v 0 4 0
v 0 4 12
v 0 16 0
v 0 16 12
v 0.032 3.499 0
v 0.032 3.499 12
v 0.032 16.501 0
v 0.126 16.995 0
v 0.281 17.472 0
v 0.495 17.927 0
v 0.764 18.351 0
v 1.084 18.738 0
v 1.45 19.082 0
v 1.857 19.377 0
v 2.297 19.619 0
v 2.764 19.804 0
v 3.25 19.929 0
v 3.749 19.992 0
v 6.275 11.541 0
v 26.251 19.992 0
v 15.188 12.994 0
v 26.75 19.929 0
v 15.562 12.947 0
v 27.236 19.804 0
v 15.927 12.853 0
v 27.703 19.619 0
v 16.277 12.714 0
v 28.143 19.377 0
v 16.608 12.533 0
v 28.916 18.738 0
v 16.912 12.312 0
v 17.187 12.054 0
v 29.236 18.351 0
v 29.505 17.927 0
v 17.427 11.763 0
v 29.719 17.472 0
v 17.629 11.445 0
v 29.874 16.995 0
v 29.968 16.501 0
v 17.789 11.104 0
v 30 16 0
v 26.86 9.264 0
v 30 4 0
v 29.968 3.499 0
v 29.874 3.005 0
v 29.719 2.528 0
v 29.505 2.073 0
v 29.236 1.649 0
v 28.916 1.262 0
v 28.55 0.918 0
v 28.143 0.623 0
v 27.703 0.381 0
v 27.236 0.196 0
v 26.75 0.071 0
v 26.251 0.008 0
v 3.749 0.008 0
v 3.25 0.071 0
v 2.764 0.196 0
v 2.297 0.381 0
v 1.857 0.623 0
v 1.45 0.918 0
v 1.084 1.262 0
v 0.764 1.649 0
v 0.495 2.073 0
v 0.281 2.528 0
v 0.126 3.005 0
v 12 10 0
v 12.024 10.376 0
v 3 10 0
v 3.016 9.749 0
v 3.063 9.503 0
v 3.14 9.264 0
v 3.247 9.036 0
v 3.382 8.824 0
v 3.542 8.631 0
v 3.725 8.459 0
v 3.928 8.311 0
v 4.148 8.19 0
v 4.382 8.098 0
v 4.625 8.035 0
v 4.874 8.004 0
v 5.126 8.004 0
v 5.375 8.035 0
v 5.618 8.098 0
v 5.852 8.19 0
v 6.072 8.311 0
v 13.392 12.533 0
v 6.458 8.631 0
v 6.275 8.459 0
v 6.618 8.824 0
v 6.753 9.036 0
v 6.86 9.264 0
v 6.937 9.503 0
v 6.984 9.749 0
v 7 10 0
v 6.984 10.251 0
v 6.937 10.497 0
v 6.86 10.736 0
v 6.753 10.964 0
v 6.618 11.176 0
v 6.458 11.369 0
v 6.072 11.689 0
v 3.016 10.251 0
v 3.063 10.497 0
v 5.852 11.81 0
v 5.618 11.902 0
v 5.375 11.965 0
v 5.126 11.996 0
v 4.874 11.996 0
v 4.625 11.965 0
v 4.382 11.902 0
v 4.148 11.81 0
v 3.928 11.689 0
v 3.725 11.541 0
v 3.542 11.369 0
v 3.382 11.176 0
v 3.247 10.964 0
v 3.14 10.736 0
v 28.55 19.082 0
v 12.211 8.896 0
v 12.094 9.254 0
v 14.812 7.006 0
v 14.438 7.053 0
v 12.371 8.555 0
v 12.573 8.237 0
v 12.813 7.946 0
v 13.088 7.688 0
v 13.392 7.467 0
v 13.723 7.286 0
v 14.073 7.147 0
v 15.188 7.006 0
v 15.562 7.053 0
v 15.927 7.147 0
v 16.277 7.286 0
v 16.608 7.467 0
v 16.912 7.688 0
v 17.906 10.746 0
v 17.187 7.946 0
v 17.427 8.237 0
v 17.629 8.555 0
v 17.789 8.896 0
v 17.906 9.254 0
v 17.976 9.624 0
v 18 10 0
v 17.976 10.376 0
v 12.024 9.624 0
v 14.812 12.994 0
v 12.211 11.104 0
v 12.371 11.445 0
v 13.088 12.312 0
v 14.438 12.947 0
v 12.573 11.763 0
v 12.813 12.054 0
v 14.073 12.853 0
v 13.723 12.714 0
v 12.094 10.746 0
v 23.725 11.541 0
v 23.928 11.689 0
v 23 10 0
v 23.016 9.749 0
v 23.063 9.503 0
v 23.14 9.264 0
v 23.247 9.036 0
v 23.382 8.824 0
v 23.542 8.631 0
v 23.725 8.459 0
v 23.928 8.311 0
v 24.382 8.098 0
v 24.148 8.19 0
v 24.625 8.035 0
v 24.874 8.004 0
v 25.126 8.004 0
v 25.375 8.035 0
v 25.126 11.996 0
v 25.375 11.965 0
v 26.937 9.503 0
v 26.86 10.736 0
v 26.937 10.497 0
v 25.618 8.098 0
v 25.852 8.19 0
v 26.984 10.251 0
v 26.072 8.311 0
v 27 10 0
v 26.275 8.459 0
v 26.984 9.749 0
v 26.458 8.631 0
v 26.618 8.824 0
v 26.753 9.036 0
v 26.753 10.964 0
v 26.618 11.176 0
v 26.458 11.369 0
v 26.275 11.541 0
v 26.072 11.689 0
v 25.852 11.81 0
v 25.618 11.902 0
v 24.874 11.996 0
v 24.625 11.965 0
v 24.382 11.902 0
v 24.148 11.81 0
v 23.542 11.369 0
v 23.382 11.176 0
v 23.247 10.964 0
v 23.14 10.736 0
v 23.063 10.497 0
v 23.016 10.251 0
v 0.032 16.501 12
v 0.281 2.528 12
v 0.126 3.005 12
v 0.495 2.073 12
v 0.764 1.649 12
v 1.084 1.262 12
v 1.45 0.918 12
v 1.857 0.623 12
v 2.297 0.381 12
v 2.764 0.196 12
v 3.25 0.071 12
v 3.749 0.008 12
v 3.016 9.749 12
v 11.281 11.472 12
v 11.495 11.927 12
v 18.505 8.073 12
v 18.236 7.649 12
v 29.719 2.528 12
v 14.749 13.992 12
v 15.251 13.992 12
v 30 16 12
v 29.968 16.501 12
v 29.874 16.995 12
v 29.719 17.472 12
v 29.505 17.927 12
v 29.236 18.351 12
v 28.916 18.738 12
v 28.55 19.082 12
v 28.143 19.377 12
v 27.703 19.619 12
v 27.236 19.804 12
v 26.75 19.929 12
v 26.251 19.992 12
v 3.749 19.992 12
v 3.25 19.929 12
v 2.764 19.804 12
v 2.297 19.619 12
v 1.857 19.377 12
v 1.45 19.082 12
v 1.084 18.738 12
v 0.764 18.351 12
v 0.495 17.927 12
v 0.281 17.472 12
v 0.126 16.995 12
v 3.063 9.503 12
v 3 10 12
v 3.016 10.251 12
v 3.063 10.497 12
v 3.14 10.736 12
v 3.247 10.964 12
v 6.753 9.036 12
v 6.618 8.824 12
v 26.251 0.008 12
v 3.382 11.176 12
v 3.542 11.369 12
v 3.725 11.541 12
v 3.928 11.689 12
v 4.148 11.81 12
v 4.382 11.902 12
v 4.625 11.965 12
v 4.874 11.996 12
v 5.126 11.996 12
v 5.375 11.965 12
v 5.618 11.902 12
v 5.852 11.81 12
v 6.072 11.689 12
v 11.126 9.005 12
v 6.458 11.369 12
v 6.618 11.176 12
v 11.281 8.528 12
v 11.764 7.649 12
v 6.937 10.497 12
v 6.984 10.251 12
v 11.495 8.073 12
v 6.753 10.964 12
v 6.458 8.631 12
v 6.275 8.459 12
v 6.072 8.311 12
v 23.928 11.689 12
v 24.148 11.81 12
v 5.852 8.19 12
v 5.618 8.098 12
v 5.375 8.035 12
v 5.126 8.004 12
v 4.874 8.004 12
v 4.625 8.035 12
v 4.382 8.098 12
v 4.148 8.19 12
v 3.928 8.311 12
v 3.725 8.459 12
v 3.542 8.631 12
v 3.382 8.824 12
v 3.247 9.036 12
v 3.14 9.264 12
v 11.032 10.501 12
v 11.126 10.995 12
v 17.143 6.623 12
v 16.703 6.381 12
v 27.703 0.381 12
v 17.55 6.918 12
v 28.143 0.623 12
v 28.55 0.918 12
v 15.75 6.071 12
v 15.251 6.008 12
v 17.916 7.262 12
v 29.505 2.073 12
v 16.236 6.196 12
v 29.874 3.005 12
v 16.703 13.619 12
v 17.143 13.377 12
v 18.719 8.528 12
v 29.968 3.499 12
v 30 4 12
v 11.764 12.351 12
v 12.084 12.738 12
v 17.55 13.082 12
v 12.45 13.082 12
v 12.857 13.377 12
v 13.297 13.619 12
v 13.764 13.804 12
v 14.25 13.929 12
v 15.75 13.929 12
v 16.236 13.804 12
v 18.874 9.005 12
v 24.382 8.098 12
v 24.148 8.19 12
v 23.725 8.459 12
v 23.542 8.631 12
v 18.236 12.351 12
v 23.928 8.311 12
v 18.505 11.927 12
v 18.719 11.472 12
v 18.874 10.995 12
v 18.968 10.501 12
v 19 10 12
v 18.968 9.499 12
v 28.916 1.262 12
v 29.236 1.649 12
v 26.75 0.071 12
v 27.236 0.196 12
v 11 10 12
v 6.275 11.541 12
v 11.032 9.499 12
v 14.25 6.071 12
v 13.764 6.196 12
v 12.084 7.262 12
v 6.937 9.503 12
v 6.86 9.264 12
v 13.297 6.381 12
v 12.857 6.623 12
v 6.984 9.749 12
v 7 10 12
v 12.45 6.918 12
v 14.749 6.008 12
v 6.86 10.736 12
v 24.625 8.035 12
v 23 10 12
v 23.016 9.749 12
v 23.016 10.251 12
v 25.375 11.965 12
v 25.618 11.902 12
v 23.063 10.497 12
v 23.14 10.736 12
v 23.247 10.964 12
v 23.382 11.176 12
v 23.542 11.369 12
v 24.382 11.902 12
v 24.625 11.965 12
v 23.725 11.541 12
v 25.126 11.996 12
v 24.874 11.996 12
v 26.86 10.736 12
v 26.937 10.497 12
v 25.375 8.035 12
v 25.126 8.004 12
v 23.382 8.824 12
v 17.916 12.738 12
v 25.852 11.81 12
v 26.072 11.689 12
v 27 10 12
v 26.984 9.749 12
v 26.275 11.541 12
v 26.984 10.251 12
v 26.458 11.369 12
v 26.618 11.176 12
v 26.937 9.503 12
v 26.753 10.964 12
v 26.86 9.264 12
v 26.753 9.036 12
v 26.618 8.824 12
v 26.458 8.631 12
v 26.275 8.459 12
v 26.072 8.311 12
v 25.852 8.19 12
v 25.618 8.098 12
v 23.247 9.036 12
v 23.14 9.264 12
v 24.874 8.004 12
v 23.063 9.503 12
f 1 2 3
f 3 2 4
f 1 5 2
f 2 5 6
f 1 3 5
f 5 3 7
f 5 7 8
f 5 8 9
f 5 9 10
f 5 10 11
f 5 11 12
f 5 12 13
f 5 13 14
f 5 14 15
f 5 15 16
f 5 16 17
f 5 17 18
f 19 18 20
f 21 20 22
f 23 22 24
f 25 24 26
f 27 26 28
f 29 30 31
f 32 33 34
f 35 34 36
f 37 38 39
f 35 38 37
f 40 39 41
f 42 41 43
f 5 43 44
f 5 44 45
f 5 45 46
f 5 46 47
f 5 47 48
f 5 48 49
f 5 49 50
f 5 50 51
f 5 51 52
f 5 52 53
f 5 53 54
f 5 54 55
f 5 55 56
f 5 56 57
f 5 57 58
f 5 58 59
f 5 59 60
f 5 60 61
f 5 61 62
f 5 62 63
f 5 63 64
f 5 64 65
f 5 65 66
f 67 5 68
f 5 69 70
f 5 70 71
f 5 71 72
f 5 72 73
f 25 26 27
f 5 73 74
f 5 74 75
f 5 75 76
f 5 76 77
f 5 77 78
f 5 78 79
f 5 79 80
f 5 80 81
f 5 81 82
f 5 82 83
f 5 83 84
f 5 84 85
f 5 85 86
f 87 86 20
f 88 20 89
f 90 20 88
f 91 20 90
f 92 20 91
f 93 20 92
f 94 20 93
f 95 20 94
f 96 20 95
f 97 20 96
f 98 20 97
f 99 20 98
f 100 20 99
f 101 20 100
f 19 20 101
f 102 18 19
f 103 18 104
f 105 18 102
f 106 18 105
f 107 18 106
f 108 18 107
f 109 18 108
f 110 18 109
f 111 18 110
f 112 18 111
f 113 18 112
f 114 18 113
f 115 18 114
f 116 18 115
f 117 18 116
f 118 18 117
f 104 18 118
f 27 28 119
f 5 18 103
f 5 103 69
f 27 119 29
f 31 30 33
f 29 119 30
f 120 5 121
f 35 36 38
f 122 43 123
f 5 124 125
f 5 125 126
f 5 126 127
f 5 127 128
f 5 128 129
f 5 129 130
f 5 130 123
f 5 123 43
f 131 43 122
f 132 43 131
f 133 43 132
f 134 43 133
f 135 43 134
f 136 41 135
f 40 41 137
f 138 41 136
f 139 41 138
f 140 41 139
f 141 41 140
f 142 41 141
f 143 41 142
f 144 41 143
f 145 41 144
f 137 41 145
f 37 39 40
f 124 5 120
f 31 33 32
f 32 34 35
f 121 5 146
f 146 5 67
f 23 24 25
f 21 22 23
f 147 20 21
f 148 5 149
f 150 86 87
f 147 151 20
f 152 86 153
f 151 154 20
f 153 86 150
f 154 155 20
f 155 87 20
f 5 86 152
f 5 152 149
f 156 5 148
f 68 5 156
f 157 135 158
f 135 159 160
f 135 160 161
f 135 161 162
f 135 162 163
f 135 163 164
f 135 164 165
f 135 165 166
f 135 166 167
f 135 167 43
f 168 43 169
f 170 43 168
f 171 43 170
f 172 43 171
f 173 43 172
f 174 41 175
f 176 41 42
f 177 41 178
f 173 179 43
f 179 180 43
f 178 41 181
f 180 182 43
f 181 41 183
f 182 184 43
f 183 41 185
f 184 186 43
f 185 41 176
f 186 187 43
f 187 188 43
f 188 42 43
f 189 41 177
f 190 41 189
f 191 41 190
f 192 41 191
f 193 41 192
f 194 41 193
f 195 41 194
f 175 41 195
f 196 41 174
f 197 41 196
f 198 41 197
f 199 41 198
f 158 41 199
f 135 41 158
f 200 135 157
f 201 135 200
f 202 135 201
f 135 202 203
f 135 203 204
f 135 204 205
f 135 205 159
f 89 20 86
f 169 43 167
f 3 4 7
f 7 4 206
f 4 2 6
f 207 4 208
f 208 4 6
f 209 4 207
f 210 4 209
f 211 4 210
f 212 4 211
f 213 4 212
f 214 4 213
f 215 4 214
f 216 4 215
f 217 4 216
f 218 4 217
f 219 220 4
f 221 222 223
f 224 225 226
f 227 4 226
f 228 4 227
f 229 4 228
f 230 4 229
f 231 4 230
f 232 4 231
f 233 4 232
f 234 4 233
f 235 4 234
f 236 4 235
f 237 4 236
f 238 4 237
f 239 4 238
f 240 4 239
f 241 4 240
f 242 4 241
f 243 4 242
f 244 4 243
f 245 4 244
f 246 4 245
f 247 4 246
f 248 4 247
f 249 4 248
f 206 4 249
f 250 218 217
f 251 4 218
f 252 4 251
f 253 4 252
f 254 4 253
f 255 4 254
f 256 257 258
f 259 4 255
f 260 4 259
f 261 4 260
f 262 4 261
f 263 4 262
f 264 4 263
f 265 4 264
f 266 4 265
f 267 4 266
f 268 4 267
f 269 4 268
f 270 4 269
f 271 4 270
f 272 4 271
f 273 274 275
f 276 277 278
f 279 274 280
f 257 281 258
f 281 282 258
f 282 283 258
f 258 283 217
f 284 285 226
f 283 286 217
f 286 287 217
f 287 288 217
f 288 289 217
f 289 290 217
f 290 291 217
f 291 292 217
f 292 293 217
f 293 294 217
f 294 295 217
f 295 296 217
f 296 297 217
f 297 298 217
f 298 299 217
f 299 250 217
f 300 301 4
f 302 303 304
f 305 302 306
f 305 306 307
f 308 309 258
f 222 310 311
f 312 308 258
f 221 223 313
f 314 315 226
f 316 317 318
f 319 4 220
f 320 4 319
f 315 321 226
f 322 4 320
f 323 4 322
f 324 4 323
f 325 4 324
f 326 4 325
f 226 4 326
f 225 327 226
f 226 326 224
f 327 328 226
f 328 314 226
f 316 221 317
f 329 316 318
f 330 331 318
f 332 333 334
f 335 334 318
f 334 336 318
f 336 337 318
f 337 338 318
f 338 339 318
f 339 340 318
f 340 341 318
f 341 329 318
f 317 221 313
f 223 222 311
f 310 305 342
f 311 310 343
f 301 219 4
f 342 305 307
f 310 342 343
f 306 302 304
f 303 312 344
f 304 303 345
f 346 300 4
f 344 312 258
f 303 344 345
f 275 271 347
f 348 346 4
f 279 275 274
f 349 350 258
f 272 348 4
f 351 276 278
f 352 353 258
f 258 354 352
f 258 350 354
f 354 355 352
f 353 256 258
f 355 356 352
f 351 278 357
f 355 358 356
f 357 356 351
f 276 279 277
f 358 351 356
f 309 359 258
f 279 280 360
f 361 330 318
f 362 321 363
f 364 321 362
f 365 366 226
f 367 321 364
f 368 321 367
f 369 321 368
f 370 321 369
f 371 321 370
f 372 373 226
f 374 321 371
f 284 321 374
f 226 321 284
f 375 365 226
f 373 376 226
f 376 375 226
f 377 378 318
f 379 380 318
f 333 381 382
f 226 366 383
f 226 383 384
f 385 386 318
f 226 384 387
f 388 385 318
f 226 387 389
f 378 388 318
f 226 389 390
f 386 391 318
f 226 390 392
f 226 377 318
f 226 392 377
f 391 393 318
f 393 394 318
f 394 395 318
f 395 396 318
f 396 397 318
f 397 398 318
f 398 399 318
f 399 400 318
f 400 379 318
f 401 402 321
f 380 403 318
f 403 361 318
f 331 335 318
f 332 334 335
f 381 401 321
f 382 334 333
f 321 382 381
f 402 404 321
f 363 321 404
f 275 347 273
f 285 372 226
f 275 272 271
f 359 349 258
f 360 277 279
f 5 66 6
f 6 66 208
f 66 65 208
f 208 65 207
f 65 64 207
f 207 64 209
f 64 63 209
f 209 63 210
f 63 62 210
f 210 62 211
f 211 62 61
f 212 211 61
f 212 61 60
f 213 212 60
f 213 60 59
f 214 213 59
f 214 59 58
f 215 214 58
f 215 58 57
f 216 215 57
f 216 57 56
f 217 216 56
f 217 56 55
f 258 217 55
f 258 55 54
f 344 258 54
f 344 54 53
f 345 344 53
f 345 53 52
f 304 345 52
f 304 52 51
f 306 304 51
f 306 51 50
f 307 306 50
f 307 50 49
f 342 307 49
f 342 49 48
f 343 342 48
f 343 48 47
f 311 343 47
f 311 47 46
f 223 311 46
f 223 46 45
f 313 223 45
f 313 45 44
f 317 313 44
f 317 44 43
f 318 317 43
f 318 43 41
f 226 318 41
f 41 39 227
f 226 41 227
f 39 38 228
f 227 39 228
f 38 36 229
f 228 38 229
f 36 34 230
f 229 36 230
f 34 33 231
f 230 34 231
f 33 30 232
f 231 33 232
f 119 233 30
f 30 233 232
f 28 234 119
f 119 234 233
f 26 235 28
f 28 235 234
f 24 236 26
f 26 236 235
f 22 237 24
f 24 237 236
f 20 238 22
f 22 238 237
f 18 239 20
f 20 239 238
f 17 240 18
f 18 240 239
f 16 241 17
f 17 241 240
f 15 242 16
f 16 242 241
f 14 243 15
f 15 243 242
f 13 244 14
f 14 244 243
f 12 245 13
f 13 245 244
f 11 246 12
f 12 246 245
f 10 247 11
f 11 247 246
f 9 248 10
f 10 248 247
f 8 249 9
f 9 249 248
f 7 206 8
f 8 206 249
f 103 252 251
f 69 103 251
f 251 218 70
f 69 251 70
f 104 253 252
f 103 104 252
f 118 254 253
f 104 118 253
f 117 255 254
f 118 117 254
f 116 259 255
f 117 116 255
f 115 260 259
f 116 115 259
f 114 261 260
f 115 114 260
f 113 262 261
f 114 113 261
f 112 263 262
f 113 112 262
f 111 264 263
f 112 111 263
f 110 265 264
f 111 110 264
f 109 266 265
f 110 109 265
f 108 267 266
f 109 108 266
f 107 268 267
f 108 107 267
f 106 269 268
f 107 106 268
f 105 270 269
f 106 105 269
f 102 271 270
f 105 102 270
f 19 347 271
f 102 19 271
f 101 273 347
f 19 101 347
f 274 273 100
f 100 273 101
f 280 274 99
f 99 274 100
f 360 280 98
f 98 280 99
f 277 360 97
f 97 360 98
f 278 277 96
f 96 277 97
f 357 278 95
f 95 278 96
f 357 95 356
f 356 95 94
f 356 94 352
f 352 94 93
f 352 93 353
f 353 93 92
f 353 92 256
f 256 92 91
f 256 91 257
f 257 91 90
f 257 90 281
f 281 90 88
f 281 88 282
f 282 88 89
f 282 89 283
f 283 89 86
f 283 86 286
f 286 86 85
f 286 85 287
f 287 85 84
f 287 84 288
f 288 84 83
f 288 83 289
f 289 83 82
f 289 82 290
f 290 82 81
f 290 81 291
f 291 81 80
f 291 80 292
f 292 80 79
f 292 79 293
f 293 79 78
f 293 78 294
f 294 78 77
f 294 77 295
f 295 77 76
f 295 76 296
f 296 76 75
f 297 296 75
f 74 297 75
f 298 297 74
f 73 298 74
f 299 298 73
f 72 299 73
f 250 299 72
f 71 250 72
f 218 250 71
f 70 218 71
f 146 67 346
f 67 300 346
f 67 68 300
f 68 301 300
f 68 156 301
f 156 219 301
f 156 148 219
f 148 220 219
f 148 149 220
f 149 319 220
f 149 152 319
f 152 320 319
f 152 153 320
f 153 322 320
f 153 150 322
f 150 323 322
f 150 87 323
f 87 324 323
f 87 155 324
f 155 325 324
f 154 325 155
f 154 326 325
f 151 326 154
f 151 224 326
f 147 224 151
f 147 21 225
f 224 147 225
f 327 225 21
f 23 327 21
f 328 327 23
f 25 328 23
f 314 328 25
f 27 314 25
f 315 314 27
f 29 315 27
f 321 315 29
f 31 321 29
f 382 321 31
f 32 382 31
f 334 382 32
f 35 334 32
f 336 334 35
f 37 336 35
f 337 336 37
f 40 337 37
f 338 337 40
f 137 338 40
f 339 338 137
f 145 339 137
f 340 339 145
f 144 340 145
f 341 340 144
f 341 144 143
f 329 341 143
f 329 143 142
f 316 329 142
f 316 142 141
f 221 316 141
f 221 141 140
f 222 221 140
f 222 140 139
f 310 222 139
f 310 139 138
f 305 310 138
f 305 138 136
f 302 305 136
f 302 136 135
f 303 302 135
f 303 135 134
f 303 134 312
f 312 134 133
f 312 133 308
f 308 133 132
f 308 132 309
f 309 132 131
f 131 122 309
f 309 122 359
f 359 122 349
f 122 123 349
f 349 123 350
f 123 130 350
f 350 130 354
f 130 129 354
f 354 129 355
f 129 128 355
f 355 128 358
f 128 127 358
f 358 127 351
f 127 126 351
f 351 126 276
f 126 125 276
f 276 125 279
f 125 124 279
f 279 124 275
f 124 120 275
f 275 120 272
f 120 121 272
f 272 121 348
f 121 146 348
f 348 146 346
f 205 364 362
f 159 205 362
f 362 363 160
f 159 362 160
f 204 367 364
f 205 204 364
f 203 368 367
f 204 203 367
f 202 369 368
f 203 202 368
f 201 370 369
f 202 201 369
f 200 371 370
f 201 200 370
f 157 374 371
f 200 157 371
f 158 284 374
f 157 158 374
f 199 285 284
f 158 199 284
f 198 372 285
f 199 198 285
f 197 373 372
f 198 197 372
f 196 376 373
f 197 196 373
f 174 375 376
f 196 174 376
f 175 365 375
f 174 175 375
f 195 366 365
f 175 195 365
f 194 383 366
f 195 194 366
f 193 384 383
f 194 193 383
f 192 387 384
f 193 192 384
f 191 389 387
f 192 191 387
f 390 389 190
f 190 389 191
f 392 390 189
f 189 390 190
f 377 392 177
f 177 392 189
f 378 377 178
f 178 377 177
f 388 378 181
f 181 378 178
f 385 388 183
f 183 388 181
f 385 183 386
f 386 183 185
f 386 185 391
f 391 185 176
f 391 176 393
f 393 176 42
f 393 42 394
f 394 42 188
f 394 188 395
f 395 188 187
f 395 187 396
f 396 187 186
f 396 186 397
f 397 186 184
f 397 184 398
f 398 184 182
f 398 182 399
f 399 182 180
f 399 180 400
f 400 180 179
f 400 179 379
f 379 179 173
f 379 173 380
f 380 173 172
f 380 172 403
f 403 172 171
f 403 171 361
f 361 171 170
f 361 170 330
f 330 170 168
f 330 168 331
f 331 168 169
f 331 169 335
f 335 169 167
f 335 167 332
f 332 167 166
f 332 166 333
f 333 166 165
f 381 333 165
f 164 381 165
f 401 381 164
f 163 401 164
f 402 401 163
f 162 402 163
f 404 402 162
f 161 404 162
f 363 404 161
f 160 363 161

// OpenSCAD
use <MCAD/boxes.scad>

// Overall size
baseHeight = 12;
length = 30;
width = 20;

mountHoleDistance = 20;
holeOffset = (length - mountHoleDistance) /2;

radius = 4;

$fn=50;

// -----------------------------------------
// -----------------------------------------
module GenericBase(xDistance, yDistance, zHeight) {
	//roundedBox([xDistance, yDistance, zHeight], 2, true);

	// Create a rectangluar base to work from that
	// is xDistance by yDistance and zHeight height.

	// This is effectivly a cube with rounded corners

	// extend the base out by 3.5 from holes by using minkowski
	// which gives rounded corners to the board in the process
	// matching the Gadgeteer design
	
	translate([radius,radius,0]) {
		minkowski()
		{
			cube([xDistance-(radius*2), yDistance-(radius*2), (zHeight/2)]);
			cylinder(r=radius,h=(zHeight/2));
		}
	}
}

// -----------------------------------------
// Outer wall
// -----------------------------------------
module OuterWall() {
    difference() {
        union() {
            GenericBase(length,width,baseHeight);
        }
        union() {
            // Add in the screw holes.
            translate([holeOffset ,(width / 2) ,-1]) {
                #cylinder(r=2, h=baseHeight+2,center=false);
            }
            
            translate([length - holeOffset ,(width / 2) ,-1]) {
                #cylinder(r=2, h=baseHeight+2,center=false);
            }
            
            // Add in the centeral pipe connector
            translate([length/2,width / 2 ,0]) {
                #cylinder(r1=3, r2=4, h=baseHeight,center=false);
            }
        }
    }
}


// -----------------------------------------
// -----------------------------------------
module Debug() {
    union() {
        OuterWall();
    }
}

// Comment out when building, uncomment for debug.
Debug();
